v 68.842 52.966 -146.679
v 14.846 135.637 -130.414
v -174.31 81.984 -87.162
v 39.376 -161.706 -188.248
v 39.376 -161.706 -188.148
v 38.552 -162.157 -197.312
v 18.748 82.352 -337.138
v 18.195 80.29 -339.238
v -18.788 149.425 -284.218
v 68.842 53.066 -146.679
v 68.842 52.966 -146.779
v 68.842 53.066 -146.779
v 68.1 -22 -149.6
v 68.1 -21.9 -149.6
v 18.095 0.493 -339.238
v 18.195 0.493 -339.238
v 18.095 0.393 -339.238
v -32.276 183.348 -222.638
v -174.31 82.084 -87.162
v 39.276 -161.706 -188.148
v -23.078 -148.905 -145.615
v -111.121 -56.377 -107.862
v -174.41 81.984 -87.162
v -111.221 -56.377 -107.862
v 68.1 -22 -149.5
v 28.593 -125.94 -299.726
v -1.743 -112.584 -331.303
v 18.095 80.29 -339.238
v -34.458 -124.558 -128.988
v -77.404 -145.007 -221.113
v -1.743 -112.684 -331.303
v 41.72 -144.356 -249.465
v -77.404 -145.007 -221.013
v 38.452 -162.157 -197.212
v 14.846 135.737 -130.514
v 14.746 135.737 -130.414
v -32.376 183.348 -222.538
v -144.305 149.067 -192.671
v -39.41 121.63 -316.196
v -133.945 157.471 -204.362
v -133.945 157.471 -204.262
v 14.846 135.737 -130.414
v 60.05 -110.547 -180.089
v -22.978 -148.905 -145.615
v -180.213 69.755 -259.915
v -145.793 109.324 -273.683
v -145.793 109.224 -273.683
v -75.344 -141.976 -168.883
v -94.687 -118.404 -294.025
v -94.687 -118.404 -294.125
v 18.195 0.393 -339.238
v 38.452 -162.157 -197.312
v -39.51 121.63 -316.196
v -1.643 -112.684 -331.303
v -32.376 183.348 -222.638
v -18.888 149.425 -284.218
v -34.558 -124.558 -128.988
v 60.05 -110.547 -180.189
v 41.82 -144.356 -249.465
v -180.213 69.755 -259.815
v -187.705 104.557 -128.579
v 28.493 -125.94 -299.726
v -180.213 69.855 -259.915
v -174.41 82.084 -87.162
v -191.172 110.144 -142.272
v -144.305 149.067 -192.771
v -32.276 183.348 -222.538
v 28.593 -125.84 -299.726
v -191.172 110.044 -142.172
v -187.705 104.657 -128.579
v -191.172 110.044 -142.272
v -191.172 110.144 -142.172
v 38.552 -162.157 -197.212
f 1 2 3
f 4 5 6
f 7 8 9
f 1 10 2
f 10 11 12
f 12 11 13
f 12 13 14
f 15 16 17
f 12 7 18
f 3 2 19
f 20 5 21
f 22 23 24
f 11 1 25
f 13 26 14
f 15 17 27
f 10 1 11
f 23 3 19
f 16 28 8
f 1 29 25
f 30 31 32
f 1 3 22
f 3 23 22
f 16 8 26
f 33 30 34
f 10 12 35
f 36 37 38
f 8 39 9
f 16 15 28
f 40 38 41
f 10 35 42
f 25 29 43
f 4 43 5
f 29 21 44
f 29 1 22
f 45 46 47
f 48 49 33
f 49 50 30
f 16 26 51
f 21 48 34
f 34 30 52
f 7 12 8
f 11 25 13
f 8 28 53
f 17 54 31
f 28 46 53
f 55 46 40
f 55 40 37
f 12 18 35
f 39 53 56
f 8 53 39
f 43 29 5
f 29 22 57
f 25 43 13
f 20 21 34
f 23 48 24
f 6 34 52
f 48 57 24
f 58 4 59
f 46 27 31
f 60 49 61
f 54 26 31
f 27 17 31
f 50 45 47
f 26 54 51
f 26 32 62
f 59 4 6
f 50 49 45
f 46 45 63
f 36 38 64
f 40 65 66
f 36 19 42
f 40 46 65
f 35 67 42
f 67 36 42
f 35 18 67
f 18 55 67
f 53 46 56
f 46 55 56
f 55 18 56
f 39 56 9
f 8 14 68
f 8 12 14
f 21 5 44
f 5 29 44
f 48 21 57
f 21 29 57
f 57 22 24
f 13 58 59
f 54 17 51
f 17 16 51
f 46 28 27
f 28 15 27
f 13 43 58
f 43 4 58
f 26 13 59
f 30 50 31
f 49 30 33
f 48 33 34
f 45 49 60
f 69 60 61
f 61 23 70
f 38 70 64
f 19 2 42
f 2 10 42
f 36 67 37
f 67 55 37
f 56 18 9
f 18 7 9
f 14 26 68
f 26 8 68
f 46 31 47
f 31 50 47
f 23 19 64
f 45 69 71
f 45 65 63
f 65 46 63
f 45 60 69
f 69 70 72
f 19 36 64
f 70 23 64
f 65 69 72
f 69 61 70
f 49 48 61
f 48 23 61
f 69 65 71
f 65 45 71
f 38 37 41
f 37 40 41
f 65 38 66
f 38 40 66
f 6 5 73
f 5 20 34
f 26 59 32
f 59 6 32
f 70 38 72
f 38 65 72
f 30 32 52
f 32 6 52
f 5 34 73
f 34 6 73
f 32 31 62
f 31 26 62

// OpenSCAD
hull(){ translate([68.7422383765,52.966076026,-146.779494169])cube(0.1,0.1,0.1);
translate([14.7461457495,135.637112253,-130.51359049])cube(0.1,0.1,0.1);
translate([-174.409836066,81.9836065574,-87.262295082])cube(0.1,0.1,0.1);
translate([68.0,-22.0,-149.6])cube(0.1,0.1,0.1);
translate([39.2764397906,-161.705759162,-188.248167539])cube(0.1,0.1,0.1);
translate([59.9502982107,-110.546719682,-180.188866799])cube(0.1,0.1,0.1);
translate([-187.705361535,104.557304476,-128.679291687])cube(0.1,0.1,0.1);
translate([-34.5580110497,-124.55801105,-129.08839779])cube(0.1,0.1,0.1);
translate([-23.0774962742,-148.90461997,-145.715350224])cube(0.1,0.1,0.1);
translate([-111.221453287,-56.3771626298,-107.961937716])cube(0.1,0.1,0.1);
translate([-75.343502282,-141.97573865,-168.98270478])cube(0.1,0.1,0.1);
translate([-180.213431986,69.7552646557,-259.914627205])cube(0.1,0.1,0.1);
translate([-191.171883641,110.043689857,-142.272425617])cube(0.1,0.1,0.1);
translate([-144.304703476,148.967280164,-192.770961145])cube(0.1,0.1,0.1);
translate([38.4515561989,-162.157481129,-197.312067004])cube(0.1,0.1,0.1);
translate([41.7197932371,-144.356019815,-249.464785699])cube(0.1,0.1,0.1);
translate([-77.4044795784,-145.006587615,-221.113306983])cube(0.1,0.1,0.1);
translate([-94.6865889213,-118.403790087,-294.125364431])cube(0.1,0.1,0.1);
translate([-145.793056501,109.223961879,-273.6827774])cube(0.1,0.1,0.1);
translate([-32.3757926277,183.2482057,-222.637795276])cube(0.1,0.1,0.1);
translate([-133.945458427,157.37058384,-204.361724837])cube(0.1,0.1,0.1);
translate([18.0952380952,0.392857142857,-339.238095238])cube(0.1,0.1,0.1);
translate([-1.74283765348,-112.684174625,-331.302864939])cube(0.1,0.1,0.1);
translate([28.4930282445,-125.940293171,-299.726492671])cube(0.1,0.1,0.1);
translate([-39.5096582467,121.530460624,-316.196136701])cube(0.1,0.1,0.1);
translate([-18.8881309686,149.324693042,-284.217826285])cube(0.1,0.1,0.1);
translate([18.0952380952,80.1904761905,-339.238095238])cube(0.1,0.1,0.1);
translate([18.6479966436,82.2519404237,-337.137612754])cube(0.1,0.1,0.1); }
